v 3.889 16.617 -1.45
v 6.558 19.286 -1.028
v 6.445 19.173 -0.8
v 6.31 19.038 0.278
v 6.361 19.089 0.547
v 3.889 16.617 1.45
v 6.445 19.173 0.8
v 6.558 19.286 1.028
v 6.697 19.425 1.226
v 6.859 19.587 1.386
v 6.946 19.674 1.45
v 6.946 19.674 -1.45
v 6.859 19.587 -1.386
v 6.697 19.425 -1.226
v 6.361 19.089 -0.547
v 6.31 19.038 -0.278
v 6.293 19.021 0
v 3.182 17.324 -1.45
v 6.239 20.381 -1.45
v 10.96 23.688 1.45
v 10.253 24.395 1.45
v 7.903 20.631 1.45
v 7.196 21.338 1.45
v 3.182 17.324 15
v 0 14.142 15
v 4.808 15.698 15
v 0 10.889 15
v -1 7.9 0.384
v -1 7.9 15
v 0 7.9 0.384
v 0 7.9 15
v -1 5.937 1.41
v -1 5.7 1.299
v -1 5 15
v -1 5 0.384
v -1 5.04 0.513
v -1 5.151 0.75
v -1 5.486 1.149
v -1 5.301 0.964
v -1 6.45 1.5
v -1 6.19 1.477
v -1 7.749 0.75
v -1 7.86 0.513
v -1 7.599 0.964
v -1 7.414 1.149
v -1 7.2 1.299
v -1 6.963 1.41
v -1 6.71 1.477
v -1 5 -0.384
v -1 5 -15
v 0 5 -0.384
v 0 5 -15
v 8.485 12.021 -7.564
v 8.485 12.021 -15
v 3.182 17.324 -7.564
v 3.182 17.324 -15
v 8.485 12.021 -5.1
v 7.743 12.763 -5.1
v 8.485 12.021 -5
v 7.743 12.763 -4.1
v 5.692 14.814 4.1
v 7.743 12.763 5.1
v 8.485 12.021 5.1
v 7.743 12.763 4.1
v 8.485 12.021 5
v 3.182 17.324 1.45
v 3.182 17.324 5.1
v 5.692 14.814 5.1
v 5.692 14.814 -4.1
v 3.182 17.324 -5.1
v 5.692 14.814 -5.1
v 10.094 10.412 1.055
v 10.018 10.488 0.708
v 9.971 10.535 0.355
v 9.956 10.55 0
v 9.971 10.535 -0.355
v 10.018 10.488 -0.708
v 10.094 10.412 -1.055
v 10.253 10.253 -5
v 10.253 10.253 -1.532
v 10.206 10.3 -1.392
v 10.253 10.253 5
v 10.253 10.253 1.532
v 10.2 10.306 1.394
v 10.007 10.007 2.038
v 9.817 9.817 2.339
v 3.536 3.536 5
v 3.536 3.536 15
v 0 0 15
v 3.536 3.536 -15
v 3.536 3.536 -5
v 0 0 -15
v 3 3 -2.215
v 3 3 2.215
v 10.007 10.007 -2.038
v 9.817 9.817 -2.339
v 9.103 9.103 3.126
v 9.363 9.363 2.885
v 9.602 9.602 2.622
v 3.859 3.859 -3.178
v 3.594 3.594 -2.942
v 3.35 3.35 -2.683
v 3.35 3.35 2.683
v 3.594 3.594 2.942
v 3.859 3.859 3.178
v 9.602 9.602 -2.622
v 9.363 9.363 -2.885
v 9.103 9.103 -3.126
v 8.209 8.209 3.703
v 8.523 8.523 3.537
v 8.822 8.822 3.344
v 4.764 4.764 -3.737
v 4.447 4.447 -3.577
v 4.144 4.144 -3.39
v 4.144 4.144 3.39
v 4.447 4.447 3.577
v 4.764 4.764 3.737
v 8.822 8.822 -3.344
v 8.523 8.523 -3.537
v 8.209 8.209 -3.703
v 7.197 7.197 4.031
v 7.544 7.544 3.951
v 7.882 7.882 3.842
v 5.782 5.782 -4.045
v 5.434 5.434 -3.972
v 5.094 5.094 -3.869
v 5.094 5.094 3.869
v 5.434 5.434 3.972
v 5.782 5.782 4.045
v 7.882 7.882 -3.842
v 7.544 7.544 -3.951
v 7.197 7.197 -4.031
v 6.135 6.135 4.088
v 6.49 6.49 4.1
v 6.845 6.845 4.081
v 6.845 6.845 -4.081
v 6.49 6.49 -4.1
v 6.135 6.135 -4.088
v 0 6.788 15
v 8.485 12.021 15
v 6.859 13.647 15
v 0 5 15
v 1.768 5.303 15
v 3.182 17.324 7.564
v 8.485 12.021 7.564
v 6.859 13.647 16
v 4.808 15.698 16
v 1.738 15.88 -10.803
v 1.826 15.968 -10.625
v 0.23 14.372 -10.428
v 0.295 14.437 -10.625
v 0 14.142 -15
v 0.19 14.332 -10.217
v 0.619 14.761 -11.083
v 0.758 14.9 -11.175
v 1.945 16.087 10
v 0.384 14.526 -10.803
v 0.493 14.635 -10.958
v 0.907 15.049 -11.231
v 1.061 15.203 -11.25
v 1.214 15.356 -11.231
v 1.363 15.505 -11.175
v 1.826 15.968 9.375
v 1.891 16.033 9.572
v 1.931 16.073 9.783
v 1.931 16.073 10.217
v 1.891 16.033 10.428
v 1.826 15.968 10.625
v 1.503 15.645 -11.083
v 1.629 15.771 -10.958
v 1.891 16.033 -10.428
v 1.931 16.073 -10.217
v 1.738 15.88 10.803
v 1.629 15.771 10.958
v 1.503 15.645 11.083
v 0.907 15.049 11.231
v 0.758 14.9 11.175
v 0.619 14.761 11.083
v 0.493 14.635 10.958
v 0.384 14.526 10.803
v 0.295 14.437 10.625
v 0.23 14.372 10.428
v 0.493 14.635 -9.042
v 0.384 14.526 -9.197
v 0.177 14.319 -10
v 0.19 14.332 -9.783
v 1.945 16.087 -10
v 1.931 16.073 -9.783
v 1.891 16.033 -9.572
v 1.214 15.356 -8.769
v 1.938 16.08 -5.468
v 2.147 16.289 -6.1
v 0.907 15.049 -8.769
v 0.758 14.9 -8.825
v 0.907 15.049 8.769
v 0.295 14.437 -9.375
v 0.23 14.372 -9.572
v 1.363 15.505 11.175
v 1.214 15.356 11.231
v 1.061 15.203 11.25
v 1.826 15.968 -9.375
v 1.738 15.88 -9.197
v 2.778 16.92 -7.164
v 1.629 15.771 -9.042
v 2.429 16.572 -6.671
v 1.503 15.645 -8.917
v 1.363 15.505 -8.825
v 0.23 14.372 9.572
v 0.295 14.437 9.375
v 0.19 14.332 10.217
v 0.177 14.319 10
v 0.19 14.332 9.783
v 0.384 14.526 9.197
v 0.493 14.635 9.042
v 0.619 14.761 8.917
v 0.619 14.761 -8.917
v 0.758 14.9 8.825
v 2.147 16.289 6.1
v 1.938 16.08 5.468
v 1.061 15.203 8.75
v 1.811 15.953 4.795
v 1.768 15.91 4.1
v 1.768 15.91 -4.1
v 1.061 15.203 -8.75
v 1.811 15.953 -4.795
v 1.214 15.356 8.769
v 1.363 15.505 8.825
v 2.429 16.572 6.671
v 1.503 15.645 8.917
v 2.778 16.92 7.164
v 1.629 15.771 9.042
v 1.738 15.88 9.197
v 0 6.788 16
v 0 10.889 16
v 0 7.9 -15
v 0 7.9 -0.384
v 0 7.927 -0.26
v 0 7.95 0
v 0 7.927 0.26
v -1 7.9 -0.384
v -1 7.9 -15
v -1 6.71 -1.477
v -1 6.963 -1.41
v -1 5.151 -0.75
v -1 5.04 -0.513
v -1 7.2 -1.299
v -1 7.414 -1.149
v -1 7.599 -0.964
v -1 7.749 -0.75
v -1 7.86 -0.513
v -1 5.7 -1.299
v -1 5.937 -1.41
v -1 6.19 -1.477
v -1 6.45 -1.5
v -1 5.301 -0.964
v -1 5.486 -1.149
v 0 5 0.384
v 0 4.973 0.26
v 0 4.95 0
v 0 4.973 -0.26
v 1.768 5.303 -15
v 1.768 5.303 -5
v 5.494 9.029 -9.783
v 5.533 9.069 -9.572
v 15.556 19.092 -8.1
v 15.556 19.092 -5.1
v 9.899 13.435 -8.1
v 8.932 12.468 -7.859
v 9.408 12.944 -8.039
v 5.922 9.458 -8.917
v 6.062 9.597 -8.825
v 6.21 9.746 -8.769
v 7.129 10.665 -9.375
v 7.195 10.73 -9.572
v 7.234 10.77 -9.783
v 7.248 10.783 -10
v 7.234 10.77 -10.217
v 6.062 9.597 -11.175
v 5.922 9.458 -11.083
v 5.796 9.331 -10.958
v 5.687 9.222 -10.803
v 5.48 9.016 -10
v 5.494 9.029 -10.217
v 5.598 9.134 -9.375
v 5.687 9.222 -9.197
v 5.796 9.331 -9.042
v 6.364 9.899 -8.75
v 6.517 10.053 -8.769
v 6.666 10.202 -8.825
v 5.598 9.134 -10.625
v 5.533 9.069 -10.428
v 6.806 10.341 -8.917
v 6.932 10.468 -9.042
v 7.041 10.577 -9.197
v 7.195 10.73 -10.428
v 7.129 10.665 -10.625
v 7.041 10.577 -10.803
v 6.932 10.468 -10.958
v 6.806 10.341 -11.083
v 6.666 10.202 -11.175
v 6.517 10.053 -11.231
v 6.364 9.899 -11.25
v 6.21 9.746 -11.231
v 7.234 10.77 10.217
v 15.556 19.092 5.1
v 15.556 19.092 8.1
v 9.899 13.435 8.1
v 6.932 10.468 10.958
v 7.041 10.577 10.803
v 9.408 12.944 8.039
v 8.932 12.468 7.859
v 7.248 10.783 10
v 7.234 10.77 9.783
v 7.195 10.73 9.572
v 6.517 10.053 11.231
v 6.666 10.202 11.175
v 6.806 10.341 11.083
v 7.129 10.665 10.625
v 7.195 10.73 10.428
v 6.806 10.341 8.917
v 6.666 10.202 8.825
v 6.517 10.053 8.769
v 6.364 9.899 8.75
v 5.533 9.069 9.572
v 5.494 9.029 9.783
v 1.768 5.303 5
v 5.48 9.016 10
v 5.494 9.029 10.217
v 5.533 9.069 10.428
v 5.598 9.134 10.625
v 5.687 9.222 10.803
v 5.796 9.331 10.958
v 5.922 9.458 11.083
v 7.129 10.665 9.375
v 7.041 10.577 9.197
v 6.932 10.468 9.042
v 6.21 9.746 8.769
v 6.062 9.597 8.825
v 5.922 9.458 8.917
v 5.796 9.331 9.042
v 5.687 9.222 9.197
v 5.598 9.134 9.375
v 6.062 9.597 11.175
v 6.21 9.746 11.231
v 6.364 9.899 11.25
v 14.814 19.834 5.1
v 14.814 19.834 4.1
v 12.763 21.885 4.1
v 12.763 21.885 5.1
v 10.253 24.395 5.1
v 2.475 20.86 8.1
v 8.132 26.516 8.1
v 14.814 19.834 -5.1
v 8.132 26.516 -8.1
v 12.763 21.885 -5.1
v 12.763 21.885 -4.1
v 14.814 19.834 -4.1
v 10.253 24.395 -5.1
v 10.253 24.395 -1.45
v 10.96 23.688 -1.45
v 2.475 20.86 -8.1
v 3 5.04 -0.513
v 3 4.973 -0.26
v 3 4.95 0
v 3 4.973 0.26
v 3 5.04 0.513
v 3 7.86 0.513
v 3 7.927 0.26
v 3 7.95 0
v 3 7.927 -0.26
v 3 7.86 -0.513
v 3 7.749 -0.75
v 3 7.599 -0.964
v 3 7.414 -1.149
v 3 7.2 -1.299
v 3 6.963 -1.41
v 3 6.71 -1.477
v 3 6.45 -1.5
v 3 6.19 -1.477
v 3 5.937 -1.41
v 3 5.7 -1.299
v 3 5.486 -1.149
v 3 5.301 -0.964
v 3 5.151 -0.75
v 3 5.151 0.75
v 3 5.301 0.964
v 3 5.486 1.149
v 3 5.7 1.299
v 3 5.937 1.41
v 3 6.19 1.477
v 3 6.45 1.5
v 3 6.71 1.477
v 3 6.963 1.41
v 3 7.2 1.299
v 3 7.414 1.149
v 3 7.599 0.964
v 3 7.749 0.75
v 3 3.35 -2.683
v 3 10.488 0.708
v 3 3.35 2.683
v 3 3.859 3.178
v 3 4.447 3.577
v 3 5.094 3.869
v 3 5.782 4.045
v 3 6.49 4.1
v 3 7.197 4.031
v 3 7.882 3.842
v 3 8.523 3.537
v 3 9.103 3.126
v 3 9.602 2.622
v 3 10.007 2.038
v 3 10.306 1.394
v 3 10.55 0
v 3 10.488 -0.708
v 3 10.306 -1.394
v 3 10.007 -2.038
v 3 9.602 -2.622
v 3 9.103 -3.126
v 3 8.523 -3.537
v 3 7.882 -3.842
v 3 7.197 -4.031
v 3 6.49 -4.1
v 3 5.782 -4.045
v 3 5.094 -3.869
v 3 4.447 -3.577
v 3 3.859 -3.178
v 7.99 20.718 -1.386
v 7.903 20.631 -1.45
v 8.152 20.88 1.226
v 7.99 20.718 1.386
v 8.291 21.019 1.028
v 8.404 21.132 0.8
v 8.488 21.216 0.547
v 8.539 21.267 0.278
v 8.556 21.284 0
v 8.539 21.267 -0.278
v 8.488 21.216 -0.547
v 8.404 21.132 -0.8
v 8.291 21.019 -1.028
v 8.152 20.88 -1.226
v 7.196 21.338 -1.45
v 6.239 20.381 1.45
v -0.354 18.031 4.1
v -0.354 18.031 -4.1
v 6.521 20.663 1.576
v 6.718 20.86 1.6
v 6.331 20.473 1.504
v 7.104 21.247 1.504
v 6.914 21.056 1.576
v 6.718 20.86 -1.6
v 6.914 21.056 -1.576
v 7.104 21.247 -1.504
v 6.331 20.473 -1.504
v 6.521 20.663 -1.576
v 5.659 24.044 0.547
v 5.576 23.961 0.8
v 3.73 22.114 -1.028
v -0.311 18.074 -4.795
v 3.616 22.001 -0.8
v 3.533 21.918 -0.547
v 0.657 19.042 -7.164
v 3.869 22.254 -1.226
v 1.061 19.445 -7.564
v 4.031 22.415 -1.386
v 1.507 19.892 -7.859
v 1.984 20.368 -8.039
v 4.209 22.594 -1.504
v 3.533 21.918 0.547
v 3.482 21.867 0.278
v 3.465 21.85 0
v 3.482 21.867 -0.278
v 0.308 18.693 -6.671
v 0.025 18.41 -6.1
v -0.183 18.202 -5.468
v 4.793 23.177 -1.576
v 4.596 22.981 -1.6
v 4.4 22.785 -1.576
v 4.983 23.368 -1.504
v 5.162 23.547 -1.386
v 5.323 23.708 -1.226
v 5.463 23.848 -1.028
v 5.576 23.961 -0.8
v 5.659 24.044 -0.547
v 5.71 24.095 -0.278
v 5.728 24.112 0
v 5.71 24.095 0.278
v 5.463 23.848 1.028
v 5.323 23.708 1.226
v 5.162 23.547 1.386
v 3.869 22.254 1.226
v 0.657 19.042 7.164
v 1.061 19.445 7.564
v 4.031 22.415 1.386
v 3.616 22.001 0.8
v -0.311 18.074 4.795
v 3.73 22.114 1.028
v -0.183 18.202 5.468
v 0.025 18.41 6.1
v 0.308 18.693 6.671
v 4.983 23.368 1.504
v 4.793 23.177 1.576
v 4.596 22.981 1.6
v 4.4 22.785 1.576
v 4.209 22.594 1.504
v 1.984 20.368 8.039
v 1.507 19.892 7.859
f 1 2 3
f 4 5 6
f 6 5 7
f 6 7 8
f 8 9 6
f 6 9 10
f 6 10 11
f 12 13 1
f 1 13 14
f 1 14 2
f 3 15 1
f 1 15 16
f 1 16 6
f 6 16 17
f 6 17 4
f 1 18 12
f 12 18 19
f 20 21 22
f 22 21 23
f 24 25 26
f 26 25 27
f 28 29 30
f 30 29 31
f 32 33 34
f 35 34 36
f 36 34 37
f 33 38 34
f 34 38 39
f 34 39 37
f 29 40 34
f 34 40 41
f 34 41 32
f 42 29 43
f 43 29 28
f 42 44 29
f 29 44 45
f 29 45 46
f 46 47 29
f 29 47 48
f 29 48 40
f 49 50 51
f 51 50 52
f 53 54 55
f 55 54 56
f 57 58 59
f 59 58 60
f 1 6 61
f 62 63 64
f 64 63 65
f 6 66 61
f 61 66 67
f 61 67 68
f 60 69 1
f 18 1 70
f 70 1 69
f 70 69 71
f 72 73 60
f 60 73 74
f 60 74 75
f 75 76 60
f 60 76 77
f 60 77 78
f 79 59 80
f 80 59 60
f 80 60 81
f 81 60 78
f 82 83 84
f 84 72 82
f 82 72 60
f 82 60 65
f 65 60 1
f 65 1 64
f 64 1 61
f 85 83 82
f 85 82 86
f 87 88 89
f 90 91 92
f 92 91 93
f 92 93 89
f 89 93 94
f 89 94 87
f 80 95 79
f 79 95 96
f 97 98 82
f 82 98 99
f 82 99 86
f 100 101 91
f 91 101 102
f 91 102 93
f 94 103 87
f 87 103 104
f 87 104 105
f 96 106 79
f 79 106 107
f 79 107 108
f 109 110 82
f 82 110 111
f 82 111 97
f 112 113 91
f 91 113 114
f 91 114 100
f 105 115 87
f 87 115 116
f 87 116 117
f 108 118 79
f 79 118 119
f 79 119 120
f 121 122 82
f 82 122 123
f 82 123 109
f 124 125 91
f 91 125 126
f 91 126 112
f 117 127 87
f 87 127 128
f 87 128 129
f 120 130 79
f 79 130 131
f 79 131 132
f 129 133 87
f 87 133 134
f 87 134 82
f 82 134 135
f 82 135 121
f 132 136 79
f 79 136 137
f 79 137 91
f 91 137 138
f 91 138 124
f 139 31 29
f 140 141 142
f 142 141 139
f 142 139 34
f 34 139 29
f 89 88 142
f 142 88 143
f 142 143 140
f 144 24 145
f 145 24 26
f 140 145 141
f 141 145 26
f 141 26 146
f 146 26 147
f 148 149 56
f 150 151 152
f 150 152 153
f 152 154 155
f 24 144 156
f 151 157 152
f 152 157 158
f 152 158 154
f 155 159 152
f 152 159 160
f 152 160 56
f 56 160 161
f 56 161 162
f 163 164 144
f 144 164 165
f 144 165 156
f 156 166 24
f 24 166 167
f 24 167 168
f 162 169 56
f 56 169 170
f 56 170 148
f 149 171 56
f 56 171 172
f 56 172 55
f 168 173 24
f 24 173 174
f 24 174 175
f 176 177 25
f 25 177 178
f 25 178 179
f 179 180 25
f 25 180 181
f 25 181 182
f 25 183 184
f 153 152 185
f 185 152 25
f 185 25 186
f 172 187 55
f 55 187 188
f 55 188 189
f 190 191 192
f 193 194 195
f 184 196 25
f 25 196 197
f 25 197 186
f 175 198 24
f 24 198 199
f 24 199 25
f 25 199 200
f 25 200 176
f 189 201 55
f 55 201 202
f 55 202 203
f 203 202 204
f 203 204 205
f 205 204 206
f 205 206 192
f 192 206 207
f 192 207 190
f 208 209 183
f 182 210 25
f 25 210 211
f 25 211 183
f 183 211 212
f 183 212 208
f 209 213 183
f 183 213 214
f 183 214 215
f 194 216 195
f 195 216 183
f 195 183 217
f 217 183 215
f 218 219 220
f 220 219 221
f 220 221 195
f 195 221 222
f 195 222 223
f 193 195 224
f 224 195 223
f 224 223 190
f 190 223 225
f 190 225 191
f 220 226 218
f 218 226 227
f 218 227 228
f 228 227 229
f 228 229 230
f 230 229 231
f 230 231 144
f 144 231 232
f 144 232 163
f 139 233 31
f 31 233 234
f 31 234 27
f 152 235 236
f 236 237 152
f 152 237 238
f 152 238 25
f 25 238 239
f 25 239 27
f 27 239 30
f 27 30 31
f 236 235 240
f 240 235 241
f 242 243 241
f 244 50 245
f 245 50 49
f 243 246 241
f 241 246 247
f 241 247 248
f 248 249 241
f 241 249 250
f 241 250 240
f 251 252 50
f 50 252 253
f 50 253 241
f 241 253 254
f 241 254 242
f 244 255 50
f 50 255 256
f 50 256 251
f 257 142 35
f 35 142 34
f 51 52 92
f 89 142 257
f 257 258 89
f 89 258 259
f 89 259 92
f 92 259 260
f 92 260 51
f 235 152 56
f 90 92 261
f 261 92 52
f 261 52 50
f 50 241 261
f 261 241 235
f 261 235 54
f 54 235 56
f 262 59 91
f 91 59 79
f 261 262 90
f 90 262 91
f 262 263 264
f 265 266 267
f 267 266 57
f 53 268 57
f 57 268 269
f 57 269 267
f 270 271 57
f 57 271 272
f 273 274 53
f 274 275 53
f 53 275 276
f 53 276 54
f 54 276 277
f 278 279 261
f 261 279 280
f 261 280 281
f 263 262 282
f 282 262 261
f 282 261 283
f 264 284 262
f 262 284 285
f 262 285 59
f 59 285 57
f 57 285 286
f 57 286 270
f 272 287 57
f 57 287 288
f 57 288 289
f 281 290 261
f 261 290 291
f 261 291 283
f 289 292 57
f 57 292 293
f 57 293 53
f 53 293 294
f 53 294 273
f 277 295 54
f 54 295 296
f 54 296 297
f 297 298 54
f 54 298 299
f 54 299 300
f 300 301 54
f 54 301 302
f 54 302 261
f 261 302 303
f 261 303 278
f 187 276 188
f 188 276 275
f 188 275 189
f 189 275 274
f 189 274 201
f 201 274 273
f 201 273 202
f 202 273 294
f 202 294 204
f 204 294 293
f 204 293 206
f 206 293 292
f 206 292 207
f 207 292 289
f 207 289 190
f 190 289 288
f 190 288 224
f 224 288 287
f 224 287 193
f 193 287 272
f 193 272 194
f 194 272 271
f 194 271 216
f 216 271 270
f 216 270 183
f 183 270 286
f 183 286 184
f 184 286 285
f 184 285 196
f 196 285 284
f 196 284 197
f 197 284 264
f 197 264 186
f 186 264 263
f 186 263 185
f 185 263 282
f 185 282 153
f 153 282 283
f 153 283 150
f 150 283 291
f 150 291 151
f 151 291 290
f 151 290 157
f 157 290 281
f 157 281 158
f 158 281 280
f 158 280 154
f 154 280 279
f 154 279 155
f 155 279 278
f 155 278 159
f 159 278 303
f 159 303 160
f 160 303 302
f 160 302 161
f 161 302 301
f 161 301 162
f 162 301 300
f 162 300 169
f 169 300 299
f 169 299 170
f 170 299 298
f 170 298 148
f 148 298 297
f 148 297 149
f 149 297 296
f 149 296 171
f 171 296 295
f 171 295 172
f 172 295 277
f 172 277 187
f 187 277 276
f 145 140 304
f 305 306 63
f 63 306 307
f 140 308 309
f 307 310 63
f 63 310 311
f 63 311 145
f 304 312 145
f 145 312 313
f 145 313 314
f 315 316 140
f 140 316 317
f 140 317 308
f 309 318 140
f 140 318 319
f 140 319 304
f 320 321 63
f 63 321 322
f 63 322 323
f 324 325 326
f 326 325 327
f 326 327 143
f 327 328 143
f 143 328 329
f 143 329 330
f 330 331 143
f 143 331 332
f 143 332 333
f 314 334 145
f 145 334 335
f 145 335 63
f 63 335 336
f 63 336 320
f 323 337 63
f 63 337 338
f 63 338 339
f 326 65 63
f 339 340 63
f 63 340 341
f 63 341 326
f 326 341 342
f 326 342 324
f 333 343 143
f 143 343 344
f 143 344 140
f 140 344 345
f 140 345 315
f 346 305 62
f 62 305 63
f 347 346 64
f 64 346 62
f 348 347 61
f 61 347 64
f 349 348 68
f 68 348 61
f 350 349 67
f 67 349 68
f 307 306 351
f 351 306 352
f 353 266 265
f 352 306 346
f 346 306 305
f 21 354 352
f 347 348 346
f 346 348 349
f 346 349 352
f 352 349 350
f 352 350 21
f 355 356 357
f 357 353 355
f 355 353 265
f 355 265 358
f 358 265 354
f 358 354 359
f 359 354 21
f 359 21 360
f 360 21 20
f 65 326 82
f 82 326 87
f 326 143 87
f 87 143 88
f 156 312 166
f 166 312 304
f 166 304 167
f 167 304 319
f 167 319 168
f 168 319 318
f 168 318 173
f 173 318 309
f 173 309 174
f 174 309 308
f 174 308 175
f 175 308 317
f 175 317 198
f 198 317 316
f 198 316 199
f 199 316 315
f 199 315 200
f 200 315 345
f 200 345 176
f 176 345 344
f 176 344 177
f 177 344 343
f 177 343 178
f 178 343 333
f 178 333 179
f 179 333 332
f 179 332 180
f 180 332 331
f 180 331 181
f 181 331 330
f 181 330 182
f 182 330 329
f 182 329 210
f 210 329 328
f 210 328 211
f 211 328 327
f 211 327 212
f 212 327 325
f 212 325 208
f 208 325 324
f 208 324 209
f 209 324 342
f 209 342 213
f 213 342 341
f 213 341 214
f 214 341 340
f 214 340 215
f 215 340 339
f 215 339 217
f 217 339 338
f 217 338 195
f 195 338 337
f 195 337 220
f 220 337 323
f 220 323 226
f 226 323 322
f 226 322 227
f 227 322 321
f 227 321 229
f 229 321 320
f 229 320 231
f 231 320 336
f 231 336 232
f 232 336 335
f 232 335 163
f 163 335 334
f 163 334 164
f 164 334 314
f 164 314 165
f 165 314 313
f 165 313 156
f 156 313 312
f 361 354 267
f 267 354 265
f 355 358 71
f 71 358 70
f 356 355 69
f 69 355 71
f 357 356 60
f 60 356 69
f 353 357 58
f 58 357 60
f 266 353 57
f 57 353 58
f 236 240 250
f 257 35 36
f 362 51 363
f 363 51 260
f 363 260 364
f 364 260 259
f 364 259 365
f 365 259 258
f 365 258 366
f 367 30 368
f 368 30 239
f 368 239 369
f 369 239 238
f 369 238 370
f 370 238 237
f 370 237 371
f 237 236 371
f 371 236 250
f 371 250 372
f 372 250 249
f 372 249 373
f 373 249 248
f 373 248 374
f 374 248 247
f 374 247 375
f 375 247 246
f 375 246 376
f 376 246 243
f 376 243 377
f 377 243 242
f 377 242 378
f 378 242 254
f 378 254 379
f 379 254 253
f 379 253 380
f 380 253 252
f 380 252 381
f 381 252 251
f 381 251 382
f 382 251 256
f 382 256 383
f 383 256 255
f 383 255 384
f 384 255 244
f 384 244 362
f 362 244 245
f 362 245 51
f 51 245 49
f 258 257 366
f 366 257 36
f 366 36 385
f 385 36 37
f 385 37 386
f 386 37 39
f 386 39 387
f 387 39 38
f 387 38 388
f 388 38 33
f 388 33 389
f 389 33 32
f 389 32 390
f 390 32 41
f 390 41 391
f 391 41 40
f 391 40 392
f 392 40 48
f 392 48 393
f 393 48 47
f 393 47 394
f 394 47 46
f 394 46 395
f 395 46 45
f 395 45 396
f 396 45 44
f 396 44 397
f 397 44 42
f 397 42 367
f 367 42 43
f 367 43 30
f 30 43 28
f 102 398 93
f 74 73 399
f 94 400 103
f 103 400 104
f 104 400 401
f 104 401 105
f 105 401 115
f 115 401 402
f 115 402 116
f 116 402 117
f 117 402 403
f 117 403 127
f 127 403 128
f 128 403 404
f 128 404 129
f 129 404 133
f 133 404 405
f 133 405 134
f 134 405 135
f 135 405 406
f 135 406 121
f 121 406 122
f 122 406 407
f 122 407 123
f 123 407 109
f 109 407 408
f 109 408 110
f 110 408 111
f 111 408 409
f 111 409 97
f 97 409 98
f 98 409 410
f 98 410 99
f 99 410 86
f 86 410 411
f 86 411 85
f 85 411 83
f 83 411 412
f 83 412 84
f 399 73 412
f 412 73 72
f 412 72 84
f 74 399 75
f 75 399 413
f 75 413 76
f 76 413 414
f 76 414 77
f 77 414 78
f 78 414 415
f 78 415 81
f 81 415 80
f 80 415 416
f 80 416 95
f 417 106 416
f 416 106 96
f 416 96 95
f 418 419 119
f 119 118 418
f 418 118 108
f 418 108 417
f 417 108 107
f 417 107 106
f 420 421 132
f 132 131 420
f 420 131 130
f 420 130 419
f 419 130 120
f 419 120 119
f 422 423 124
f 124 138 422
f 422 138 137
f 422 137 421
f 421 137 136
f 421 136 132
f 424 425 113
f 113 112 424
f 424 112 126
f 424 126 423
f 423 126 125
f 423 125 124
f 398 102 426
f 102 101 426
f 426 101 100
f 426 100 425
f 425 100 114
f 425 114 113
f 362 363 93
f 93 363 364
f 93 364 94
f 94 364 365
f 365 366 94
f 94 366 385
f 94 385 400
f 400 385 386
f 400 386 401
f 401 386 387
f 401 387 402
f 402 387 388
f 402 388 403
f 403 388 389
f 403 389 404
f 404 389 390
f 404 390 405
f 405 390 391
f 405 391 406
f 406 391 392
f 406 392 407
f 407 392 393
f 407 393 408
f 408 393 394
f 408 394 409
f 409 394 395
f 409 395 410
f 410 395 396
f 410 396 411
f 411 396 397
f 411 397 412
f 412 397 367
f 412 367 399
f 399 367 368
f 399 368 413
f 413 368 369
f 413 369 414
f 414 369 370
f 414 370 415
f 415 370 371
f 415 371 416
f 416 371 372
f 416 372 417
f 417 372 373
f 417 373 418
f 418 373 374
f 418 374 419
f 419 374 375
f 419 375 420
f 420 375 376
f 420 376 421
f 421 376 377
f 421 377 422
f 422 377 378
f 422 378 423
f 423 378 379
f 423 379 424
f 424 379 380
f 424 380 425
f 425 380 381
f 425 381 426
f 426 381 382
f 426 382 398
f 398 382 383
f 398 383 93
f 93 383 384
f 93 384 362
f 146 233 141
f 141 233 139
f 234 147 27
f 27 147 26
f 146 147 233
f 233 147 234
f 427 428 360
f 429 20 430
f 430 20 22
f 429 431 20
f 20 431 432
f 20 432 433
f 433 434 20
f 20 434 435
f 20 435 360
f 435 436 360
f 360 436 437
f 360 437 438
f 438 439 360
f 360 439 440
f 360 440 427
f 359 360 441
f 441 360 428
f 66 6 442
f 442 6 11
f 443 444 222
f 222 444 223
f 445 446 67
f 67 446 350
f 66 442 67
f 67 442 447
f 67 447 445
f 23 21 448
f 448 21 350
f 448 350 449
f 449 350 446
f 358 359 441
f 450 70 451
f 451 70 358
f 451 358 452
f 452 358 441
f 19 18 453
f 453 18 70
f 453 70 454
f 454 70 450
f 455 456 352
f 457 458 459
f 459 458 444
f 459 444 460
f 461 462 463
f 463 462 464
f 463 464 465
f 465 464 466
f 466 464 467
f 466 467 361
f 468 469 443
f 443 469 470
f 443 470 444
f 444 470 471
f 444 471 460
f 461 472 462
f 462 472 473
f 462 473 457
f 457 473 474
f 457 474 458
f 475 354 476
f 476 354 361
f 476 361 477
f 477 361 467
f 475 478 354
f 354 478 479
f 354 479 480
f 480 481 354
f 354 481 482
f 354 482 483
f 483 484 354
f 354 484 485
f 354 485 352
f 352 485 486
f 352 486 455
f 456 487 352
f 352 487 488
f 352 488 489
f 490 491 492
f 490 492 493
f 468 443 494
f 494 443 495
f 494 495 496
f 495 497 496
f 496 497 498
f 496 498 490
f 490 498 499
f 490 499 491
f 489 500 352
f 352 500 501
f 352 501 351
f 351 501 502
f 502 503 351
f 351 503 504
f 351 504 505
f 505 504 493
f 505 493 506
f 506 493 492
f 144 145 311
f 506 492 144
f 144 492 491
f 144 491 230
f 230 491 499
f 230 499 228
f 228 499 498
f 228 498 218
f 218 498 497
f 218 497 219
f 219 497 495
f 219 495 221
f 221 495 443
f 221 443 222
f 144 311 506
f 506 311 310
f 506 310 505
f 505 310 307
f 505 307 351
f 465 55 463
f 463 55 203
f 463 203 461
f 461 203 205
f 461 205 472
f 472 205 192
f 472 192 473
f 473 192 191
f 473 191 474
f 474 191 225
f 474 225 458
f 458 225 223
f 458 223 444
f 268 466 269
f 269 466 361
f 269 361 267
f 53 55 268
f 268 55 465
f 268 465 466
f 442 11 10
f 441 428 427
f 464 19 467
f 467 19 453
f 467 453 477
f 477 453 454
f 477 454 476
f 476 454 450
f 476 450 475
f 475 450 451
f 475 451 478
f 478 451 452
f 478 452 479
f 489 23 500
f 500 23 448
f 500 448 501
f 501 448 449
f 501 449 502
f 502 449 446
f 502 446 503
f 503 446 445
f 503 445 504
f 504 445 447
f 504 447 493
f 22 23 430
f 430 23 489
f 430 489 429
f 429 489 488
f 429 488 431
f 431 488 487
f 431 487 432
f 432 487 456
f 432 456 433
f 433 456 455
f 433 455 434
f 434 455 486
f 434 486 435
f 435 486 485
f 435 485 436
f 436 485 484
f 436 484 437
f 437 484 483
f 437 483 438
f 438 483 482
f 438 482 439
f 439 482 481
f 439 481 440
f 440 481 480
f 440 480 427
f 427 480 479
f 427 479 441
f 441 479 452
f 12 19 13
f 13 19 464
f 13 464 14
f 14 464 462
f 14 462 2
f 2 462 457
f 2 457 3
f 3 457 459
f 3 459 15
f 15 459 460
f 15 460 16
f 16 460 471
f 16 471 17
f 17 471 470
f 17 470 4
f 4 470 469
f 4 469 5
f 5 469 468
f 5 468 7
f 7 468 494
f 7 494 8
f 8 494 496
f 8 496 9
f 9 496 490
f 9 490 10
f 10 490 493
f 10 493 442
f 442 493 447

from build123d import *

# Parameters (mm, degrees)
MAIN_EXTRUSION_DEPTH                   = 15
ESQUISSE2_W                            = 10
ESQUISSE2_H                            = 9.5
WINDOW_EXTRUSION_DEPTH                 = 2.5
ESQUISSE5_R                            = 1.25
WINDOW_HOLE_EXTRUSION_DEPTH            = 11.457106781
FIXATION_TOP_MAKERBEAM_EXTRUSION_DEPTH = 10
ESQUISSE3_R                            = 1.5
WINDOW_HOLE_FIXATION_DEPTH             = 17.556349186
ESQUISSE4_R                            = 4.1
CENTRAL_FIXATION_DEPTH                 = 13.556349186
BOSS_EXTRU_2_DEPTH                     = 1
BOSS_EXTRU_6_DEPTH                     = 12
CONG_1_R                               = 4
ESQUISSE11_R                           = 1.6
ENL_V_MAT_EXTRU_2_DEPTH                = 25


with BuildPart() as part:
    # Esquisse1 → Main Extrusion (new body, symmetric)
    with BuildSketch(Plane.XY):
        Polygon((0, 0), (0, 5), (-1, 5), (-1, 7.9), (0, 7.9), (0, 14.142135624), (3.181980515, 17.324116139), (10.253048327, 10.253048327), align=None)
    extrude(amount=MAIN_EXTRUSION_DEPTH, both=True)

    # Esquisse2 → Window Extrusion (cut)
    with BuildSketch(Plane(origin=(0, 0, 0), x_dir=(0, 0, -1), z_dir=(0.707106781, -0.707106781, 0))):
        with Locations((10, 9.75)):
            Rectangle(ESQUISSE2_W, ESQUISSE2_H)
    window_extrusion = extrude(amount=-WINDOW_EXTRUSION_DEPTH, mode=Mode.SUBTRACT)

    # Esquisse5 → Window Hole Extrusion (cut, through all)
    with BuildSketch(Plane(origin=(-1.767766953, 1.767766953, 0), x_dir=(0, 0, -1), z_dir=(0.707106781, -0.707106781, 0))):
        with Locations((10, 11.5)):
            Circle(ESQUISSE5_R)
    window_hole_extrusion = extrude(amount=-WINDOW_HOLE_EXTRUSION_DEPTH, mode=Mode.SUBTRACT)

    # Esquisse7 → Fixation Top MakerBeam Extrusion (add)
    with BuildSketch(Plane(origin=(10.253048327, 10.253048327, 0), x_dir=(0, 0, -1), z_dir=(0.707106781, 0.707106781, 0))):
        Polygon((-5.1, 2.5), (-5.1, 3.55), (-4.1, 3.55), (-4.1, 6.45), (-5.1, 6.45), (-5.1, 10), (-8.1, 10), (-8.1, 2.5), align=None)
    fixation_top_makerbeam_extrusion = extrude(amount=FIXATION_TOP_MAKERBEAM_EXTRUSION_DEPTH)

    # Window Symetry: Window Extrusion, Window Hole Extrusion, Fixation Top MakerBeam Extrusion across plane
    add(window_extrusion.mirror(Plane.XY), mode=Mode.SUBTRACT)
    add(window_hole_extrusion.mirror(Plane.XY), mode=Mode.SUBTRACT)
    add(fixation_top_makerbeam_extrusion.mirror(Plane.XY))

    # Esquisse3 → Window Hole Fixation (cut, through all)
    with BuildSketch(Plane.ZY.offset(1)):
        with Locations((0, 6.45)):
            Circle(ESQUISSE3_R)
    extrude(amount=-WINDOW_HOLE_FIXATION_DEPTH, mode=Mode.SUBTRACT)

    # Esquisse4 → Central Fixation (cut, through all)
    with BuildSketch(Plane.ZY.offset(-3)):
        with Locations((0, 6.45)):
            Circle(ESQUISSE4_R)
    extrude(amount=-CENTRAL_FIXATION_DEPTH, mode=Mode.SUBTRACT)

    # Esquisse6 → Boss.-Extru.2 (add)
    with BuildSketch(Plane.XY.offset(15)):
        Polygon((0, 10.88944443), (4.808326112, 15.697770542), (6.858935778, 13.647160877), (0, 6.788225099), align=None)
    extrude(amount=BOSS_EXTRU_2_DEPTH)

    # Esquisse8 → Boss.-Extru.6 (add)
    with BuildSketch(Plane(origin=(17.324116139, 17.324116139, 0), x_dir=(0, 0, -1), z_dir=(0.707106781, 0.707106781, 0))):
        Polygon((-8.1, 10), (-1.45, 10), (-1.45, 9), (1.45, 9), (1.45, 10), (8.1, 10), (8.1, 13), (-8.1, 13), align=None)
    extrude(amount=-BOSS_EXTRU_6_DEPTH)

    # Congé1
    cong_1_edges = [part.edges().sort_by_distance(p)[0] for p in [
        (0.707106781, 16.970562748, -8.1),
        (0.707106781, 16.970562748, 8.1),
    ]]
    fillet(cong_1_edges, radius=CONG_1_R)

    # Esquisse11 → Enlèv. mat.-Extru.2 (cut, through all)
    with BuildSketch(Plane(origin=(-9.192388155, 9.192388155, 0), x_dir=(0, 0, 1), z_dir=(-0.707106781, 0.707106781, 0))):
        with Locations((0, 19.5)):
            Circle(ESQUISSE11_R)
    extrude(amount=-ENL_V_MAT_EXTRU_2_DEPTH, mode=Mode.SUBTRACT)


solid = part.part
